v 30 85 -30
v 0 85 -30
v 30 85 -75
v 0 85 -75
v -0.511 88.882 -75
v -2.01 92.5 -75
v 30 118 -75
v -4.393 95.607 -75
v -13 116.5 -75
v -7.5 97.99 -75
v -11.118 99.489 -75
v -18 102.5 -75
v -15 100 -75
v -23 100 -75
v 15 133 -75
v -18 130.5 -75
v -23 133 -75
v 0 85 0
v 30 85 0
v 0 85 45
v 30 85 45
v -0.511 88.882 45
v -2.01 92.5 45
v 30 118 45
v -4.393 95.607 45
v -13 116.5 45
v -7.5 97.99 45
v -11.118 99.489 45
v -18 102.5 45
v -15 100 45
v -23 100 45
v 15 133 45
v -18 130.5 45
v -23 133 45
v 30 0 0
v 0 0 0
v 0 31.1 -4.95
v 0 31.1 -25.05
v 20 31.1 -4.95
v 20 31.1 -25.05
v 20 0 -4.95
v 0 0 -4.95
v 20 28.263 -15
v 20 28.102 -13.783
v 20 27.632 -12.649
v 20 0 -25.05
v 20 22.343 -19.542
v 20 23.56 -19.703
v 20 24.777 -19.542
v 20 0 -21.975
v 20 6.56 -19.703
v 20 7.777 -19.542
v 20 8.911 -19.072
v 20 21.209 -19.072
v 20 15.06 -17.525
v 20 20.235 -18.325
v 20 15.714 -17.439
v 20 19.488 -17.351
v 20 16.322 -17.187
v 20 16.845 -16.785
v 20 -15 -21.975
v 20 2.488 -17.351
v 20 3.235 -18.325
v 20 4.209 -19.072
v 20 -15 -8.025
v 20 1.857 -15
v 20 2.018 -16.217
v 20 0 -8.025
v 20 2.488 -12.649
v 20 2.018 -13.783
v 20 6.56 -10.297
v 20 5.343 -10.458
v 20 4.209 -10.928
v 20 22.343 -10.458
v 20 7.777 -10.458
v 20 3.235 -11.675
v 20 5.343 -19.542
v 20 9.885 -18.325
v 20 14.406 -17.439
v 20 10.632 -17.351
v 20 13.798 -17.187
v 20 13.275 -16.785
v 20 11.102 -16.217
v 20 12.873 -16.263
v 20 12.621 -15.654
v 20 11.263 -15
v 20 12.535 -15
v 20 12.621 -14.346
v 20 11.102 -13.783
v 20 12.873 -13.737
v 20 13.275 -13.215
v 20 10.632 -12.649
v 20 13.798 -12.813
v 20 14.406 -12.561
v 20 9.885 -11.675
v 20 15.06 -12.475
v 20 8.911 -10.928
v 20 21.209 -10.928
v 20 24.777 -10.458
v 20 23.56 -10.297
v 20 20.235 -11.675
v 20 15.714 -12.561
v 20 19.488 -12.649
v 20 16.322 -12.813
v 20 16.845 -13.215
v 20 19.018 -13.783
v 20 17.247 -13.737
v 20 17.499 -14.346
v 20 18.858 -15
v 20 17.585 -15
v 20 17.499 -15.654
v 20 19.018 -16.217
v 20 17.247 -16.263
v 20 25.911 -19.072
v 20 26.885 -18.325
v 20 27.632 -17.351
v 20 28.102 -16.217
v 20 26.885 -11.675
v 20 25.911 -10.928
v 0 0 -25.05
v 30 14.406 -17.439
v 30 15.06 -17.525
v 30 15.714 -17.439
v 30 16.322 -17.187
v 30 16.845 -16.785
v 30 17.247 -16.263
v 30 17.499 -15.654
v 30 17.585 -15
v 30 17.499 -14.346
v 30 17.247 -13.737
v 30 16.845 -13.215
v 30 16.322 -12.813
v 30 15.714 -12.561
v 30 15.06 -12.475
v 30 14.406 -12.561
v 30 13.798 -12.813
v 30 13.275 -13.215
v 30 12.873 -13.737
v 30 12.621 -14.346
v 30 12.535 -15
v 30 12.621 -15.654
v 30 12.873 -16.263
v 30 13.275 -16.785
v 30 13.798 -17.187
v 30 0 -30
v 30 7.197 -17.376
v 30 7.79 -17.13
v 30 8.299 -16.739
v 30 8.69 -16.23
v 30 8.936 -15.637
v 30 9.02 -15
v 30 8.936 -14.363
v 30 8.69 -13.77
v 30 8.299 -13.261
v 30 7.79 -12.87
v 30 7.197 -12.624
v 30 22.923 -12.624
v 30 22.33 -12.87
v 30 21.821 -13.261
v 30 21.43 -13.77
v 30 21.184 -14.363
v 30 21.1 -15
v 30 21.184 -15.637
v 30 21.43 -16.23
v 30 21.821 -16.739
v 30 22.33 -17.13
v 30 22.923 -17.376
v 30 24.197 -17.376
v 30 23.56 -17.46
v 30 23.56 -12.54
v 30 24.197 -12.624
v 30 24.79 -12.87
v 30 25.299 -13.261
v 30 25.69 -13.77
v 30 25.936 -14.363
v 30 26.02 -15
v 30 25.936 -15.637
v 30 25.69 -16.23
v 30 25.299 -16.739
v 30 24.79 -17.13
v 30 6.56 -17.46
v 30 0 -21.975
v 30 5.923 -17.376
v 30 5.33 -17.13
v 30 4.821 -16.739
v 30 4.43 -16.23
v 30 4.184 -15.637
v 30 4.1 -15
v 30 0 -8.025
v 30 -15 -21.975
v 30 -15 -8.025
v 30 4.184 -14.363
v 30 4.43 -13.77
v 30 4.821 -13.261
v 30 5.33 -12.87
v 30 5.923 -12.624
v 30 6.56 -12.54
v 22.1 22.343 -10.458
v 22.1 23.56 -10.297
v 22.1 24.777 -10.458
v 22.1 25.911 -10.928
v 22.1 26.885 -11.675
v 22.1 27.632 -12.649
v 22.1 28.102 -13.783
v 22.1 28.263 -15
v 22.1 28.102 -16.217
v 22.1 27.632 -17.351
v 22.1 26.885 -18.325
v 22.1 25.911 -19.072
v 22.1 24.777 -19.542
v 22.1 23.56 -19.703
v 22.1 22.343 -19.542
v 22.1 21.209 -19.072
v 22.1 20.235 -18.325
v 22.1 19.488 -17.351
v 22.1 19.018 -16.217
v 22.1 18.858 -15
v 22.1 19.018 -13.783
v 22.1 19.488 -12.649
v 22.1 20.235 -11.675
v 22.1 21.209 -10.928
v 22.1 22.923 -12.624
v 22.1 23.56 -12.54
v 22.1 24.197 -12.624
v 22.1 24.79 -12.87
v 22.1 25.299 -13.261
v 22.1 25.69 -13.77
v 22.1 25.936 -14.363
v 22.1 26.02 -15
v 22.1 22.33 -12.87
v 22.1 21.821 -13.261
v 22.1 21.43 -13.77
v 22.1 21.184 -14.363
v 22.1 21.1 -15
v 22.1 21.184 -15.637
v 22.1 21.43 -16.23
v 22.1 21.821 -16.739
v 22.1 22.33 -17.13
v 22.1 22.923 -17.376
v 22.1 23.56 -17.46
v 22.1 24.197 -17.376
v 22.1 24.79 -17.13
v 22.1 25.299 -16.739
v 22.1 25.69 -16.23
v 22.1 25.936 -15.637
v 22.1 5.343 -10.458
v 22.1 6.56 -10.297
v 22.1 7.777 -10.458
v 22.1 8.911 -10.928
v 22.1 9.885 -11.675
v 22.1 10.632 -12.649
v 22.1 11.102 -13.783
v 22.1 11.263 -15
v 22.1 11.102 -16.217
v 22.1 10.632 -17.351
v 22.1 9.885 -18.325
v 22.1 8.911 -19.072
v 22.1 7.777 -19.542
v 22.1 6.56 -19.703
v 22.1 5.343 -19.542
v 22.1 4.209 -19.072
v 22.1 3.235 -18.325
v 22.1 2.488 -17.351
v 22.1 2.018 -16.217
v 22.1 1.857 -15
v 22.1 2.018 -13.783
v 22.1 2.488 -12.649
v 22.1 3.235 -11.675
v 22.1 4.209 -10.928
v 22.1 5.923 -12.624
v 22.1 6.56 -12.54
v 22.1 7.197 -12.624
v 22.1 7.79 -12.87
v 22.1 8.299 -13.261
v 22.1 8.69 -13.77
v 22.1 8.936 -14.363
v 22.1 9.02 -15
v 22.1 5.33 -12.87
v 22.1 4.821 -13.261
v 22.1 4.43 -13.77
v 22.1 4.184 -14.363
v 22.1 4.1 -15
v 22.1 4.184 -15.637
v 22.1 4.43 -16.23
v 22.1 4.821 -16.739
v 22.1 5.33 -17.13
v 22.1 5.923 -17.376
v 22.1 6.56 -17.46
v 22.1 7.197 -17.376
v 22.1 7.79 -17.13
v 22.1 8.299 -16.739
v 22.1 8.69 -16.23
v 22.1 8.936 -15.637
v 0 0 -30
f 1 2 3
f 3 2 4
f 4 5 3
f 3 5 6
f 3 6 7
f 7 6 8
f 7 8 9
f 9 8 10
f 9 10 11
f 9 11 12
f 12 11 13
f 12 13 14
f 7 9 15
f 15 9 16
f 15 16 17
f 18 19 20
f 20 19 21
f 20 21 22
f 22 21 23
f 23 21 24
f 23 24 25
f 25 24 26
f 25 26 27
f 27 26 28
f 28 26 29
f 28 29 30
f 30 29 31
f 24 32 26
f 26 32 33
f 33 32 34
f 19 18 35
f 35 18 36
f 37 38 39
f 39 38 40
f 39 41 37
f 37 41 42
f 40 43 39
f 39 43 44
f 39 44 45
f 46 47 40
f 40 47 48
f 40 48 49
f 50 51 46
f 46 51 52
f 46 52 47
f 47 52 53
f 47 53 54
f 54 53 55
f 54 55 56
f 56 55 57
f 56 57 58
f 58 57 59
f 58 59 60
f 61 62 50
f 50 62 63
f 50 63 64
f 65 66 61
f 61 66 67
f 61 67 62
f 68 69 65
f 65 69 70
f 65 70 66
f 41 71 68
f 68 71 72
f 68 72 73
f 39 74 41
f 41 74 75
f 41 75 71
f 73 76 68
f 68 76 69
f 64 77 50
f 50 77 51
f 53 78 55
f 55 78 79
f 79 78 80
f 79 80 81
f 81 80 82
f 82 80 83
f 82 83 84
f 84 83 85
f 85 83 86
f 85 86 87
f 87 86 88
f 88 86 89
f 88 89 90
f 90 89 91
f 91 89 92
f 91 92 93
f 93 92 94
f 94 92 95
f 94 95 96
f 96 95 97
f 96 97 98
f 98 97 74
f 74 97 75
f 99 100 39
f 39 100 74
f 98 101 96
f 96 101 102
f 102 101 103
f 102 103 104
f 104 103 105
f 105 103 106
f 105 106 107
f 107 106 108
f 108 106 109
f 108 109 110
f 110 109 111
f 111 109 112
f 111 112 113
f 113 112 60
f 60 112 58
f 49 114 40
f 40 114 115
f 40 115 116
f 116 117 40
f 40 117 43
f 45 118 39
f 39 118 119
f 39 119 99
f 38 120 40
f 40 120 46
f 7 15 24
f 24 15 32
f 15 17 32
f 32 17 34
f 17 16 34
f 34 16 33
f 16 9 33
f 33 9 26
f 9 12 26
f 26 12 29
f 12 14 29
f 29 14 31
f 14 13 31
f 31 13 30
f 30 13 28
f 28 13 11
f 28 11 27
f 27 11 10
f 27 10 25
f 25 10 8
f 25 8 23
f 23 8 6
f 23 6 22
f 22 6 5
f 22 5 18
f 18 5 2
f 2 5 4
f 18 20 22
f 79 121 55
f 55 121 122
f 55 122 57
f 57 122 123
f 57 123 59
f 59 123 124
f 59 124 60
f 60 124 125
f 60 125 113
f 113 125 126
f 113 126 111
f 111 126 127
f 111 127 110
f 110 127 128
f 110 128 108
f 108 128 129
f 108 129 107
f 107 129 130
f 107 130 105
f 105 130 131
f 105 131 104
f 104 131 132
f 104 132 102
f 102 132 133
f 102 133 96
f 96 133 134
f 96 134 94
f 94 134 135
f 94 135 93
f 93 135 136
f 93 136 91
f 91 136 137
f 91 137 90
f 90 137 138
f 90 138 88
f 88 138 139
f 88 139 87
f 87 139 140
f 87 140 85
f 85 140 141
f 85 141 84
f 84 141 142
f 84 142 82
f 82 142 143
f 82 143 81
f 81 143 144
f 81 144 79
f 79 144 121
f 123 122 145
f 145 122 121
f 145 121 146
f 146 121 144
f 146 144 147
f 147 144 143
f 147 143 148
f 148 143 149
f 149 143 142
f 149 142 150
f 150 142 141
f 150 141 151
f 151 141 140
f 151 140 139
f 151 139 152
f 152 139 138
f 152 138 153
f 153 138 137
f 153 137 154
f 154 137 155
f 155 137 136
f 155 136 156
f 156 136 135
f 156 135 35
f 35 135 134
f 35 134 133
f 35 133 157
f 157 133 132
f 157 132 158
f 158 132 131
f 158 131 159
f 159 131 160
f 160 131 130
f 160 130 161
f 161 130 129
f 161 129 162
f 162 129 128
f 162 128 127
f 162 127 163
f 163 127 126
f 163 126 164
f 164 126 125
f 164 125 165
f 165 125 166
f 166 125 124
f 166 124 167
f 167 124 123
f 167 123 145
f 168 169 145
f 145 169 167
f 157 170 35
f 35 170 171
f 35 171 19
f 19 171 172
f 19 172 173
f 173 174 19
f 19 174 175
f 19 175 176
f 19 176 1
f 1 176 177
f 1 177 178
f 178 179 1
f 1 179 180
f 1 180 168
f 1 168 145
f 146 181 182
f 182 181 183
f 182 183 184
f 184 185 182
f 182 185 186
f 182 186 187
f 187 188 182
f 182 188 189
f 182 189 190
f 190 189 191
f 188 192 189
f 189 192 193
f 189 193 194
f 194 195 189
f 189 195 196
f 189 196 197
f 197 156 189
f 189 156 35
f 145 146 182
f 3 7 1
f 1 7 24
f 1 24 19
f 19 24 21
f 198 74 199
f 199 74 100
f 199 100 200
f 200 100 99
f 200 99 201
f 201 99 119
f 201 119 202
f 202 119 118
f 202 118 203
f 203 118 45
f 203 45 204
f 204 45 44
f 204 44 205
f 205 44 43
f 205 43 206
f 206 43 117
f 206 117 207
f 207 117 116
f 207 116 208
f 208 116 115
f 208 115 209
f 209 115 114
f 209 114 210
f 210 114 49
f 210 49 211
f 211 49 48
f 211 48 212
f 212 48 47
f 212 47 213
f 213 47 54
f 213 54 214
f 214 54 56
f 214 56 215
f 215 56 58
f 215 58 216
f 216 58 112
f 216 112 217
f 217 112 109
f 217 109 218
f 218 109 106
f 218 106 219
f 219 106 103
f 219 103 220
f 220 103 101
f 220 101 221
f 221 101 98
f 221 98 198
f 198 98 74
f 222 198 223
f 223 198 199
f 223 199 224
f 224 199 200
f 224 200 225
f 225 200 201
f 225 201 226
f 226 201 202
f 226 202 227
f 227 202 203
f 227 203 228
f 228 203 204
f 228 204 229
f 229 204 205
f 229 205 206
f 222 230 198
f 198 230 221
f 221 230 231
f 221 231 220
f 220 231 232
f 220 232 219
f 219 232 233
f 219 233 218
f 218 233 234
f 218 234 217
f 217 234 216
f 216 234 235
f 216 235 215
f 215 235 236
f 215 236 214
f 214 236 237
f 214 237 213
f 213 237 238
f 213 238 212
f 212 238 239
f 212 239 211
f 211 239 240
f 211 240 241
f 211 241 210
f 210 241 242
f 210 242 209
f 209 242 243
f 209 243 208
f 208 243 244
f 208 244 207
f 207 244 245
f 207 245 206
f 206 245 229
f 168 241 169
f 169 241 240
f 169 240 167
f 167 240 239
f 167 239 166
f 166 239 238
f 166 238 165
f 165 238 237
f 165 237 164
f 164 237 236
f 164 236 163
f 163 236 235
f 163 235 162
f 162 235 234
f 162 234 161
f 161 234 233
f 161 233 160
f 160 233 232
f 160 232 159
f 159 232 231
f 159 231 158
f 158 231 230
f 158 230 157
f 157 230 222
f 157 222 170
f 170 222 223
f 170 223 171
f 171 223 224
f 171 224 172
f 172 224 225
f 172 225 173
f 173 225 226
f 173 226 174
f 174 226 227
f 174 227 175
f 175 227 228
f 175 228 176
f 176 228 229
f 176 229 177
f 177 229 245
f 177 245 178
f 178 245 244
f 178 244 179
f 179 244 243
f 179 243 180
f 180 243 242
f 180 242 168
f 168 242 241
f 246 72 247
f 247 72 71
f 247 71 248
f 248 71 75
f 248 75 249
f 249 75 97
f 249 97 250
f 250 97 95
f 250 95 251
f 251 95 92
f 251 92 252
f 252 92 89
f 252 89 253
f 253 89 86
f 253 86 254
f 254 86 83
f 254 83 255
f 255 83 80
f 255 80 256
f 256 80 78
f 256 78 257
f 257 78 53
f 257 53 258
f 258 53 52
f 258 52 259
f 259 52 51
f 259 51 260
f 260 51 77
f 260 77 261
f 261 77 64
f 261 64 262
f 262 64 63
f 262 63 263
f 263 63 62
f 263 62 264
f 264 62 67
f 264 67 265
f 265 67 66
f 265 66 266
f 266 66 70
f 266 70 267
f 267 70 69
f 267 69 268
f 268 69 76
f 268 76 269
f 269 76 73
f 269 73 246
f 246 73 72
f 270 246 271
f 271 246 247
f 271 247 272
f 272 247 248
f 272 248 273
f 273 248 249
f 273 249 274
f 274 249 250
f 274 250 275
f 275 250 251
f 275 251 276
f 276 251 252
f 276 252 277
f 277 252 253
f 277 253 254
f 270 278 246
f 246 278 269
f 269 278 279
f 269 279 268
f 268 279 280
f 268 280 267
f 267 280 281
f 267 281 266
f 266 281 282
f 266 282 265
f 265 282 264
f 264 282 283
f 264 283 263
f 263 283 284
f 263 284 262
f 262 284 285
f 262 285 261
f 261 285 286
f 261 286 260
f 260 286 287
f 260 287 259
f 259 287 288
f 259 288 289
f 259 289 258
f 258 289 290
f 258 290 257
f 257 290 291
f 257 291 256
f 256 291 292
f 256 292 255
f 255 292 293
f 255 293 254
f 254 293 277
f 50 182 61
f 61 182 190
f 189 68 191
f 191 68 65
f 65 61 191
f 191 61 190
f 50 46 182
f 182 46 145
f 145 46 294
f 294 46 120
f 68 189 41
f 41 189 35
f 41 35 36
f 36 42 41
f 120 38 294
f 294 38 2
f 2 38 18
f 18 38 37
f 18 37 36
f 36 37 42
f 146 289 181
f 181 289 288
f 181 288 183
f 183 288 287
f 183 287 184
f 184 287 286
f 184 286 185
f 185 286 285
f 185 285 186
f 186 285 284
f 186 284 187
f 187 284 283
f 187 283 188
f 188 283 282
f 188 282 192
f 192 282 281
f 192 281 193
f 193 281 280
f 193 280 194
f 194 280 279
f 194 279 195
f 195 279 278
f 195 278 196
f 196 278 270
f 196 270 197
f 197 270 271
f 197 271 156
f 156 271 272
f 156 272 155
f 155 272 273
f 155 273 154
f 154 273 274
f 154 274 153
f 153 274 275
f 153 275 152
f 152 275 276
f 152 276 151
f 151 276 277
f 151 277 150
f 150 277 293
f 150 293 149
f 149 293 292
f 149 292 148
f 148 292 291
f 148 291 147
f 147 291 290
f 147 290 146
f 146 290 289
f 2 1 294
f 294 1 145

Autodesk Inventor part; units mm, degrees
ref_plane "YZ Plane" through (0, 0, 0) normal (1, 0, 0) x (0, 1, 0)
ref_plane "XZ Plane" through (0, 0, 0) normal (0, 1, 0) x (-1, 0, 0)
sketch "Sketch1" plane through (0, 0, 0) normal (0, 0, 1) x (1, 0, 0)
  line L0 (0, 0) -> (25, 0)
  line L1 (25, 0) -> (25, 40)
  line L2 (25, 40) -> (0, 40)
  line L3 (0, 40) -> (0, 0)
  dimension "d1" = 25
  dimension "d2" = 40
  dimension "d3" = 25
extrude "Extrusion1" add sketch "Sketch1" against normal blind 30
sketch "Sketch2" plane through (25, 0, 0) normal (1, 0, 0) x (0, 0, -1)
  line L0 (0, 0) -> (30, 0) projected
  circle A0 centre (15, 6.56) radius 2.46
extrude "Extrusion2" cut sketch "Sketch2" against normal blind 30
sketch "Sketch3" plane through (0, 0, 0) normal (-1, 0, 0) x (0, 0, 1)
  line L0 (0, 0) -> (-30, 0) projected
  line L1 (-25.05, 0) -> (-4.95, 0)
  line L2 (-4.95, 0) -> (-4.95, 33.12)
  line L3 (-4.95, 33.12) -> (-25.05, 33.12)
  line L4 (-25.05, 33.12) -> (-25.05, 0)
  dimension "d11" = 20.1
extrude "Extrusion3" cut sketch "Sketch3" against normal blind 20
sketch "Sketch4" plane through (0, 0, 0) normal (0, -1, 0) x (1, 0, 0)
  line L0 (20, -4.95) -> (20, -25.05) projected
  line L1 (20, -15) -> (25, -15)
  line L2 (25, 0) -> (25, -30) projected
  line L3 (20, -8.025) -> (25, -8.025)
  line L4 (25, -8.025) -> (25, -21.975)
  line L5 (25, -21.975) -> (20, -21.975)
  line L6 (20, -21.975) -> (20, -8.025)
  line L7 (20, -8.025) -> (25, -21.975) construction
  line L8 (25, -8.025) -> (20, -21.975) construction
  line L9 (25, -12.54) -> (25, -17.46) projected
  point P0 (0, 0)
  point P1 (22.5, -15)
  dimension "d14" = 13.95
extrude "Extrusion4" add sketch "Sketch4" along normal blind 15
sketch "Sketch5" plane through (20, 0, 0) normal (-1, 0, 0) x (0, 0, 1)
  circle A0 centre (-15, 6.56) radius 2.46 projected
  circle A1 centre (-15, 6.56) radius 4.7025
  circle A2 centre (-15, 6.56) radius 2.46 projected
  circle A3 centre (-15, 6.56) radius 2.46
  point P0 (0, 0)
  dimension "d17" = 9.405
extrude "Extrusion5" cut sketch "Sketch5" against normal blind 2.1
sketch "Sketch6" plane through (25, 0, 0) normal (1, 0, 0) x (0, 0, -1)
  circle A0 centre (15, 6.56) radius 4.7025 projected
  line L0 (15, 6.56) -> (15, 23.56)
  circle A1 centre (15, 23.56) radius 2.46
  point P0 (0, 0)
  dimension "d20" = 17
  dimension "d21" = 4.92
extrude "Extrusion6" cut sketch "Sketch6" against normal blind 10 contours A1
sketch "Sketch7" plane through (20, 0, 0) normal (-1, 0, 0) x (0, 0, 1)
  circle A0 centre (-15, 23.56) radius 2.46 projected
  circle A1 centre (-15, 23.56) radius 4.7025
  point P0 (0, 0)
  dimension "d24" = 9.405
extrude "Extrusion7" cut sketch "Sketch7" against normal blind 2.1
sketch "Sketch9" plane through (25, 0, 0) normal (1, 0, 0) x (0, 0, -1)
  circle A0 centre (15, 6.56) radius 2.46 projected
  circle A1 centre (15, 6.56) radius 2.46
  circle A2 centre (15, 23.56) radius 2.46 projected
  circle A3 centre (15, 23.56) radius 2.46
  line L0 (30, 40) -> (30, 0) projected
  line L1 (30, 0) -> (30, 40)
  line L2 (30, 40) -> (0, 40)
  line L3 (0, 40) -> (0, 0)
  line L4 (0, 0) -> (8.025, 0) projected
  line L5 (21.975, 0) -> (21.975, -15)
  line L6 (21.975, -15) -> (8.025, -15)
  line L7 (8.025, -15) -> (8.025, 0)
  line L8 (0, 0) -> (8.025, 0)
  line L9 (21.975, 0) -> (30, 0)
extrude "Extrusion8" add sketch "Sketch9" along normal blind 5
sketch "Sketch10" plane through (0, 40, 0) normal (0, 1, 0) x (1, 0, 0)
  line L0 (0, 30) -> (30, 30) projected
  line L1 (30, 0) -> (0, 0) projected
  line L2 (0, 30) -> (30, 30)
  line L3 (30, 30) -> (30, 0)
  line L4 (30, 0) -> (0, 0)
  line L5 (0, 0) -> (0, 30)
extrude "Extrusion9" add sketch "Sketch10" along normal blind 30
sketch "Sketch12" plane through (30, 0, 0) normal (1, 0, 0) x (0, 0, -1)
  circle A0 centre (15, 6.56) radius 2.46 projected
  line L0 (15, 6.56) -> (15, 15.06)
  circle A1 centre (15, 15.06) radius 2.525
  point P0 (0, 0)
  dimension "d31" = 8.5
  dimension "d33" = 5.05
extrude "Extrusion10" cut sketch "Sketch12" against normal blind 30 contours A1
sketch "Sketch14" plane through (0, 0, 0) normal (0, 0, 1) x (1, 0, 0)
  line L0 (30, 70) -> (0, 70) projected
  line L1 (0, 70) -> (0, 85)
  line L2 (-15, 100) -> (-23, 100)
  line L3 (30, 0) -> (30, 70) projected
  line L4 (30, 118) -> (30, 70)
  arc A0 (0, 85) -> (-15, 100) centre (-15, 85) ccw
  line L5 (30, 105) -> (30, 100)
  line L6 (-23, 133) -> (15, 133)
  line L7 (-18, 130.5) -> (-23, 133)
  line L8 (-18, 130.5) -> (-13, 116.5)
  line L9 (-18, 102.5) -> (-23, 100)
  line L10 (-18, 102.5) -> (-13, 116.5)
  line L11 (30, 118) -> (15, 133)
  point P0 (0, 0)
  point P1 (0, 100)
  dimension "d47" = 30
  dimension "d54" = 15
extrude "Extrusion12" add sketch "Sketch14" against normal blind 30
sketch "Sketch15" plane through (0, 0, -25.05) normal (-1, 0, 0) x (0, 0, 1)
  line L0 (0, 33.12) -> (20.1, 33.12) projected
  line L1 (20.1, 33.12) -> (20.1, 0) projected
  line L2 (0, 33.12) -> (20.1, 33.12)
  line L3 (20.1, 33.12) -> (20.1, 31.1)
  line L4 (20.1, 31.1) -> (0, 31.1)
  line L5 (0, 31.1) -> (0, 33.12)
  point P0 (25.05, 0)
  dimension "d57" = 2.02
extrude "Extrusion13" add sketch "Sketch15" against normal blind 20
sketch "Sketch21" plane through (0, 0, 0) normal (0, 0, 1) x (1, 0, 0)
  arc A0 (0, 85) -> (-15, 100) centre (-15, 85) ccw projected
  arc A1 (0, 85) -> (-15, 100) centre (-15, 85) ccw
  line L0 (-15, 100) -> (-23, 100) projected
  line L1 (-15, 100) -> (-23, 100)
  line L2 (-23, 100) -> (-18, 102.5) projected
  line L3 (-23, 100) -> (-18, 102.5)
  line L4 (-18, 102.5) -> (-13, 116.5) projected
  line L5 (-18, 102.5) -> (-13, 116.5)
  line L6 (-13, 116.5) -> (-18, 130.5) projected
  line L7 (-13, 116.5) -> (-18, 130.5)
  line L8 (-18, 130.5) -> (-23, 133) projected
  line L9 (-18, 130.5) -> (-23, 133)
  line L10 (-23, 133) -> (15, 133) projected
  line L11 (-23, 133) -> (15, 133)
  line L12 (15, 133) -> (30, 118) projected
  line L13 (15, 133) -> (30, 118)
  line L14 (0, 85) -> (30, 85)
  line L15 (30, 85) -> (30, 118)
  point P0 (0, 0)
extrude "Extrusion14" add sketch "Sketch21" along normal blind 45
ref_plane "Work Plane1" through (0, 0, -15) normal (0, 0, 1) x (1, 0, 0)
mirror "Mirror1" about plane through (0, 0, -15) normal (0, 0, 1) of "Extrusion14"
properties part number "28mm_x_120mm"
